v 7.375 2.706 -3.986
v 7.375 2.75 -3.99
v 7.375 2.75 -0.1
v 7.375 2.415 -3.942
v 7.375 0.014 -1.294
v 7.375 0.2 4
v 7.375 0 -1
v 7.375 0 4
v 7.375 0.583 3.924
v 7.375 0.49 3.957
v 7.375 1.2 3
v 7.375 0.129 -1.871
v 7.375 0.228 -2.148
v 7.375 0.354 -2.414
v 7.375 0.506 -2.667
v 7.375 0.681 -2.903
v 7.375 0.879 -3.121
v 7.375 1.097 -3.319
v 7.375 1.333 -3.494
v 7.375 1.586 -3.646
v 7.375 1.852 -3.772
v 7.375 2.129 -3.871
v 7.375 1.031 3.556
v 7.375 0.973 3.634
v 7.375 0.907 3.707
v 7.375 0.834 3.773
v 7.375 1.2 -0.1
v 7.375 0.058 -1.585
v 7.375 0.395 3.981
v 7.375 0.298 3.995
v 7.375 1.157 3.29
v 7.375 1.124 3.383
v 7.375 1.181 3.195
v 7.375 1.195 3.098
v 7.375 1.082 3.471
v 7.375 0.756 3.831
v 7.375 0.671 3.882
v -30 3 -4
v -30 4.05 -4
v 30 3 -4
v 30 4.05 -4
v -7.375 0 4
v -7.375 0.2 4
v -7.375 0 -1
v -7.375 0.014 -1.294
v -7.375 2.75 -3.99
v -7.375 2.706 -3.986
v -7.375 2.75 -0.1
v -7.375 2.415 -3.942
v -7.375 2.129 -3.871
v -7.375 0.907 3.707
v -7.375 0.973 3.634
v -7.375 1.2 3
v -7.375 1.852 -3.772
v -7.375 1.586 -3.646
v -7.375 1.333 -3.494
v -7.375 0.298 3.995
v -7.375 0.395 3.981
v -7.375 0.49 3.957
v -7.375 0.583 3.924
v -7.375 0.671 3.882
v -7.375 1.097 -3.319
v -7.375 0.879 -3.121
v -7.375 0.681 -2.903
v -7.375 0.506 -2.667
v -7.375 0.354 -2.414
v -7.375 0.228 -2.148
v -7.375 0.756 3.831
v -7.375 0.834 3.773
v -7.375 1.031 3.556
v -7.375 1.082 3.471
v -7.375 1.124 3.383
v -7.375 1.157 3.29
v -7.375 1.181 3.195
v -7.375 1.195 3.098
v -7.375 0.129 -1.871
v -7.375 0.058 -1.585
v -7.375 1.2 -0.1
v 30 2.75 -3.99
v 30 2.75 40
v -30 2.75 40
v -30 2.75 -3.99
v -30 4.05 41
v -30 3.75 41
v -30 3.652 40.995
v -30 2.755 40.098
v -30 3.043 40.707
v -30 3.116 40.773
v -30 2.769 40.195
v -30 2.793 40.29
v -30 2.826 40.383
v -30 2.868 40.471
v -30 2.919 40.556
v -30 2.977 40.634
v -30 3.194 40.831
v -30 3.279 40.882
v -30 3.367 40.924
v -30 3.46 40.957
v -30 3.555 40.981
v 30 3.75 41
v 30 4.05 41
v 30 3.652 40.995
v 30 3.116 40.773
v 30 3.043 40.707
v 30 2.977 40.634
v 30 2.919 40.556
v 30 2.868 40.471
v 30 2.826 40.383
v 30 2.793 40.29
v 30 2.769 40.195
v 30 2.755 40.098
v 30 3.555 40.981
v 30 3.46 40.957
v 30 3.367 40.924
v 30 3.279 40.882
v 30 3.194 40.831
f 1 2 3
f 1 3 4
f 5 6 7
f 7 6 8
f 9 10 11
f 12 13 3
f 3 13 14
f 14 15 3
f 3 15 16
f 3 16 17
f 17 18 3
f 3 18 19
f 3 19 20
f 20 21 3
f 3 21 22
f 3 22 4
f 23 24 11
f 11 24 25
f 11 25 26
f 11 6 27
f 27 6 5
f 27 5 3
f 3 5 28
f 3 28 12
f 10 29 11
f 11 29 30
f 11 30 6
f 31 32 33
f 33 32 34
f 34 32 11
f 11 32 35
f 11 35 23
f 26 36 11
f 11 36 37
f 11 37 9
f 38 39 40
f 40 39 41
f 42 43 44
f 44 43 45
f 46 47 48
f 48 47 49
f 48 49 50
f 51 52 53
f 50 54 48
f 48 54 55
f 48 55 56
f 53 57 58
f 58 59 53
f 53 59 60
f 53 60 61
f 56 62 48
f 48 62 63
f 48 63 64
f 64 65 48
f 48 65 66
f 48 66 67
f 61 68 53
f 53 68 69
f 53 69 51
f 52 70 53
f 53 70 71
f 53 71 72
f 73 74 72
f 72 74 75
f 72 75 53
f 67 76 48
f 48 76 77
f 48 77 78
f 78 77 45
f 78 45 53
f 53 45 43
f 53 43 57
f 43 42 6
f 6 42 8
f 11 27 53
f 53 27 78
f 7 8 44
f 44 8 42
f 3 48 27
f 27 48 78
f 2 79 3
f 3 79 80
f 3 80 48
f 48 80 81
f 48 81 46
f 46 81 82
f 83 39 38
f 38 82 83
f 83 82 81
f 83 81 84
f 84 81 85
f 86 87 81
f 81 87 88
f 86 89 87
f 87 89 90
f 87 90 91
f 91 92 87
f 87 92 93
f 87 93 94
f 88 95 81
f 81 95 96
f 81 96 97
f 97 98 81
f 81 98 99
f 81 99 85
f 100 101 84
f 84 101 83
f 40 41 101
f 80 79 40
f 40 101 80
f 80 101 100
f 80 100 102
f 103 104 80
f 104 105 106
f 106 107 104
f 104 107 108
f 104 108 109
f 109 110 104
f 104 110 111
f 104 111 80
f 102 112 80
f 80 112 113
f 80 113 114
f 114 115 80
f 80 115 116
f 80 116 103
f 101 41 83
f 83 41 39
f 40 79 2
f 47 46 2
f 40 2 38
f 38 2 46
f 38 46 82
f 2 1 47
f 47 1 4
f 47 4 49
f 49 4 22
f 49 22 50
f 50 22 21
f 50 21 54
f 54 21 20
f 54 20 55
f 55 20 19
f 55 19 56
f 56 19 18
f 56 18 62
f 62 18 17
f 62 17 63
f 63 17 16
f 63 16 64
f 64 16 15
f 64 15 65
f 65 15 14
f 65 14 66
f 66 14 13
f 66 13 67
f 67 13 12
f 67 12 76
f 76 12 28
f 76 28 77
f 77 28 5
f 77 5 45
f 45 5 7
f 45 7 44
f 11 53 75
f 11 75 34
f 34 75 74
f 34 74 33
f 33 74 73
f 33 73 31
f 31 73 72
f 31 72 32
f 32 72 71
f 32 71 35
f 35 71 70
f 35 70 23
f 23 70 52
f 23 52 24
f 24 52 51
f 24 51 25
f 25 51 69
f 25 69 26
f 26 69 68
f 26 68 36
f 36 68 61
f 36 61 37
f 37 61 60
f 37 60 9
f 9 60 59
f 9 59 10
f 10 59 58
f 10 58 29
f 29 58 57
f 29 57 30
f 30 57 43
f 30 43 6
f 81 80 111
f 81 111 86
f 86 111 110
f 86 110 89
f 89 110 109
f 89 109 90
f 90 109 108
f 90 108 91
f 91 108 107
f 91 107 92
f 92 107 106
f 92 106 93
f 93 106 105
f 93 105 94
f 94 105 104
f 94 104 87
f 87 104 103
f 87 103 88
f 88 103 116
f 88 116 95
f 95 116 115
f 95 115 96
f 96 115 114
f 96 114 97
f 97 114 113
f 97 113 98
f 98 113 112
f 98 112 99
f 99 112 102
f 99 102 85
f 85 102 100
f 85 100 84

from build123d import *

# Parameters (mm, degrees)
SKETCH_1_W      = 14.75
SKETCH_1_H      = 8
EXTRUDE_1_DEPTH = 1.2
SKETCH_2_W      = 14.75
SKETCH_2_H      = 3.9
EXTRUDE_2_DEPTH = 1.55
SKETCH_3_W      = 60
SKETCH_3_H      = 45
EXTRUDE_3_DEPTH = 1.3
FILLET_1_R      = 3
FILLET_2_R      = 1
FILLET_3_R      = 1


with BuildPart() as part:
    # 草图1 → 凸台-拉伸1 (new body)
    with BuildSketch(Plane(origin=(0, 0, 0), x_dir=(1, 0, 0), z_dir=(0, 1, 0))):
        Rectangle(SKETCH_1_W, SKETCH_1_H)
    extrude(amount=EXTRUDE_1_DEPTH)

    # 草图2 → 凸台-拉伸2 (add)
    with BuildSketch(Plane(origin=(0, 1.2, 0), x_dir=(1, 0, 0), z_dir=(0, 1, 0))):
        with Locations((0, 2.05)):
            Rectangle(SKETCH_2_W, SKETCH_2_H)
    extrude(amount=EXTRUDE_2_DEPTH)

    # 草图3 → 凸台-拉伸3 (add)
    with BuildSketch(Plane(origin=(0, 2.75, 0), x_dir=(1, 0, 0), z_dir=(0, 1, 0))):
        with Locations((0, -18.5)):
            Rectangle(SKETCH_3_W, SKETCH_3_H)
    extrude(amount=EXTRUDE_3_DEPTH)

    # 圆角1
    fillet_1_edges = [part.edges().sort_by_distance(p)[0] for p in [
        (0, 0, -4),
    ]]
    fillet(fillet_1_edges, radius=FILLET_1_R)

    # 圆角2
    fillet_2_edges = [part.edges().sort_by_distance(p)[0] for p in [
        (0, 1.2, 4),
    ]]
    fillet(fillet_2_edges, radius=FILLET_2_R)

    # 圆角3
    fillet_3_edges = [part.edges().sort_by_distance(p)[0] for p in [
        (0, 2.75, 41),
    ]]
    fillet(fillet_3_edges, radius=FILLET_3_R)


solid = part.part
